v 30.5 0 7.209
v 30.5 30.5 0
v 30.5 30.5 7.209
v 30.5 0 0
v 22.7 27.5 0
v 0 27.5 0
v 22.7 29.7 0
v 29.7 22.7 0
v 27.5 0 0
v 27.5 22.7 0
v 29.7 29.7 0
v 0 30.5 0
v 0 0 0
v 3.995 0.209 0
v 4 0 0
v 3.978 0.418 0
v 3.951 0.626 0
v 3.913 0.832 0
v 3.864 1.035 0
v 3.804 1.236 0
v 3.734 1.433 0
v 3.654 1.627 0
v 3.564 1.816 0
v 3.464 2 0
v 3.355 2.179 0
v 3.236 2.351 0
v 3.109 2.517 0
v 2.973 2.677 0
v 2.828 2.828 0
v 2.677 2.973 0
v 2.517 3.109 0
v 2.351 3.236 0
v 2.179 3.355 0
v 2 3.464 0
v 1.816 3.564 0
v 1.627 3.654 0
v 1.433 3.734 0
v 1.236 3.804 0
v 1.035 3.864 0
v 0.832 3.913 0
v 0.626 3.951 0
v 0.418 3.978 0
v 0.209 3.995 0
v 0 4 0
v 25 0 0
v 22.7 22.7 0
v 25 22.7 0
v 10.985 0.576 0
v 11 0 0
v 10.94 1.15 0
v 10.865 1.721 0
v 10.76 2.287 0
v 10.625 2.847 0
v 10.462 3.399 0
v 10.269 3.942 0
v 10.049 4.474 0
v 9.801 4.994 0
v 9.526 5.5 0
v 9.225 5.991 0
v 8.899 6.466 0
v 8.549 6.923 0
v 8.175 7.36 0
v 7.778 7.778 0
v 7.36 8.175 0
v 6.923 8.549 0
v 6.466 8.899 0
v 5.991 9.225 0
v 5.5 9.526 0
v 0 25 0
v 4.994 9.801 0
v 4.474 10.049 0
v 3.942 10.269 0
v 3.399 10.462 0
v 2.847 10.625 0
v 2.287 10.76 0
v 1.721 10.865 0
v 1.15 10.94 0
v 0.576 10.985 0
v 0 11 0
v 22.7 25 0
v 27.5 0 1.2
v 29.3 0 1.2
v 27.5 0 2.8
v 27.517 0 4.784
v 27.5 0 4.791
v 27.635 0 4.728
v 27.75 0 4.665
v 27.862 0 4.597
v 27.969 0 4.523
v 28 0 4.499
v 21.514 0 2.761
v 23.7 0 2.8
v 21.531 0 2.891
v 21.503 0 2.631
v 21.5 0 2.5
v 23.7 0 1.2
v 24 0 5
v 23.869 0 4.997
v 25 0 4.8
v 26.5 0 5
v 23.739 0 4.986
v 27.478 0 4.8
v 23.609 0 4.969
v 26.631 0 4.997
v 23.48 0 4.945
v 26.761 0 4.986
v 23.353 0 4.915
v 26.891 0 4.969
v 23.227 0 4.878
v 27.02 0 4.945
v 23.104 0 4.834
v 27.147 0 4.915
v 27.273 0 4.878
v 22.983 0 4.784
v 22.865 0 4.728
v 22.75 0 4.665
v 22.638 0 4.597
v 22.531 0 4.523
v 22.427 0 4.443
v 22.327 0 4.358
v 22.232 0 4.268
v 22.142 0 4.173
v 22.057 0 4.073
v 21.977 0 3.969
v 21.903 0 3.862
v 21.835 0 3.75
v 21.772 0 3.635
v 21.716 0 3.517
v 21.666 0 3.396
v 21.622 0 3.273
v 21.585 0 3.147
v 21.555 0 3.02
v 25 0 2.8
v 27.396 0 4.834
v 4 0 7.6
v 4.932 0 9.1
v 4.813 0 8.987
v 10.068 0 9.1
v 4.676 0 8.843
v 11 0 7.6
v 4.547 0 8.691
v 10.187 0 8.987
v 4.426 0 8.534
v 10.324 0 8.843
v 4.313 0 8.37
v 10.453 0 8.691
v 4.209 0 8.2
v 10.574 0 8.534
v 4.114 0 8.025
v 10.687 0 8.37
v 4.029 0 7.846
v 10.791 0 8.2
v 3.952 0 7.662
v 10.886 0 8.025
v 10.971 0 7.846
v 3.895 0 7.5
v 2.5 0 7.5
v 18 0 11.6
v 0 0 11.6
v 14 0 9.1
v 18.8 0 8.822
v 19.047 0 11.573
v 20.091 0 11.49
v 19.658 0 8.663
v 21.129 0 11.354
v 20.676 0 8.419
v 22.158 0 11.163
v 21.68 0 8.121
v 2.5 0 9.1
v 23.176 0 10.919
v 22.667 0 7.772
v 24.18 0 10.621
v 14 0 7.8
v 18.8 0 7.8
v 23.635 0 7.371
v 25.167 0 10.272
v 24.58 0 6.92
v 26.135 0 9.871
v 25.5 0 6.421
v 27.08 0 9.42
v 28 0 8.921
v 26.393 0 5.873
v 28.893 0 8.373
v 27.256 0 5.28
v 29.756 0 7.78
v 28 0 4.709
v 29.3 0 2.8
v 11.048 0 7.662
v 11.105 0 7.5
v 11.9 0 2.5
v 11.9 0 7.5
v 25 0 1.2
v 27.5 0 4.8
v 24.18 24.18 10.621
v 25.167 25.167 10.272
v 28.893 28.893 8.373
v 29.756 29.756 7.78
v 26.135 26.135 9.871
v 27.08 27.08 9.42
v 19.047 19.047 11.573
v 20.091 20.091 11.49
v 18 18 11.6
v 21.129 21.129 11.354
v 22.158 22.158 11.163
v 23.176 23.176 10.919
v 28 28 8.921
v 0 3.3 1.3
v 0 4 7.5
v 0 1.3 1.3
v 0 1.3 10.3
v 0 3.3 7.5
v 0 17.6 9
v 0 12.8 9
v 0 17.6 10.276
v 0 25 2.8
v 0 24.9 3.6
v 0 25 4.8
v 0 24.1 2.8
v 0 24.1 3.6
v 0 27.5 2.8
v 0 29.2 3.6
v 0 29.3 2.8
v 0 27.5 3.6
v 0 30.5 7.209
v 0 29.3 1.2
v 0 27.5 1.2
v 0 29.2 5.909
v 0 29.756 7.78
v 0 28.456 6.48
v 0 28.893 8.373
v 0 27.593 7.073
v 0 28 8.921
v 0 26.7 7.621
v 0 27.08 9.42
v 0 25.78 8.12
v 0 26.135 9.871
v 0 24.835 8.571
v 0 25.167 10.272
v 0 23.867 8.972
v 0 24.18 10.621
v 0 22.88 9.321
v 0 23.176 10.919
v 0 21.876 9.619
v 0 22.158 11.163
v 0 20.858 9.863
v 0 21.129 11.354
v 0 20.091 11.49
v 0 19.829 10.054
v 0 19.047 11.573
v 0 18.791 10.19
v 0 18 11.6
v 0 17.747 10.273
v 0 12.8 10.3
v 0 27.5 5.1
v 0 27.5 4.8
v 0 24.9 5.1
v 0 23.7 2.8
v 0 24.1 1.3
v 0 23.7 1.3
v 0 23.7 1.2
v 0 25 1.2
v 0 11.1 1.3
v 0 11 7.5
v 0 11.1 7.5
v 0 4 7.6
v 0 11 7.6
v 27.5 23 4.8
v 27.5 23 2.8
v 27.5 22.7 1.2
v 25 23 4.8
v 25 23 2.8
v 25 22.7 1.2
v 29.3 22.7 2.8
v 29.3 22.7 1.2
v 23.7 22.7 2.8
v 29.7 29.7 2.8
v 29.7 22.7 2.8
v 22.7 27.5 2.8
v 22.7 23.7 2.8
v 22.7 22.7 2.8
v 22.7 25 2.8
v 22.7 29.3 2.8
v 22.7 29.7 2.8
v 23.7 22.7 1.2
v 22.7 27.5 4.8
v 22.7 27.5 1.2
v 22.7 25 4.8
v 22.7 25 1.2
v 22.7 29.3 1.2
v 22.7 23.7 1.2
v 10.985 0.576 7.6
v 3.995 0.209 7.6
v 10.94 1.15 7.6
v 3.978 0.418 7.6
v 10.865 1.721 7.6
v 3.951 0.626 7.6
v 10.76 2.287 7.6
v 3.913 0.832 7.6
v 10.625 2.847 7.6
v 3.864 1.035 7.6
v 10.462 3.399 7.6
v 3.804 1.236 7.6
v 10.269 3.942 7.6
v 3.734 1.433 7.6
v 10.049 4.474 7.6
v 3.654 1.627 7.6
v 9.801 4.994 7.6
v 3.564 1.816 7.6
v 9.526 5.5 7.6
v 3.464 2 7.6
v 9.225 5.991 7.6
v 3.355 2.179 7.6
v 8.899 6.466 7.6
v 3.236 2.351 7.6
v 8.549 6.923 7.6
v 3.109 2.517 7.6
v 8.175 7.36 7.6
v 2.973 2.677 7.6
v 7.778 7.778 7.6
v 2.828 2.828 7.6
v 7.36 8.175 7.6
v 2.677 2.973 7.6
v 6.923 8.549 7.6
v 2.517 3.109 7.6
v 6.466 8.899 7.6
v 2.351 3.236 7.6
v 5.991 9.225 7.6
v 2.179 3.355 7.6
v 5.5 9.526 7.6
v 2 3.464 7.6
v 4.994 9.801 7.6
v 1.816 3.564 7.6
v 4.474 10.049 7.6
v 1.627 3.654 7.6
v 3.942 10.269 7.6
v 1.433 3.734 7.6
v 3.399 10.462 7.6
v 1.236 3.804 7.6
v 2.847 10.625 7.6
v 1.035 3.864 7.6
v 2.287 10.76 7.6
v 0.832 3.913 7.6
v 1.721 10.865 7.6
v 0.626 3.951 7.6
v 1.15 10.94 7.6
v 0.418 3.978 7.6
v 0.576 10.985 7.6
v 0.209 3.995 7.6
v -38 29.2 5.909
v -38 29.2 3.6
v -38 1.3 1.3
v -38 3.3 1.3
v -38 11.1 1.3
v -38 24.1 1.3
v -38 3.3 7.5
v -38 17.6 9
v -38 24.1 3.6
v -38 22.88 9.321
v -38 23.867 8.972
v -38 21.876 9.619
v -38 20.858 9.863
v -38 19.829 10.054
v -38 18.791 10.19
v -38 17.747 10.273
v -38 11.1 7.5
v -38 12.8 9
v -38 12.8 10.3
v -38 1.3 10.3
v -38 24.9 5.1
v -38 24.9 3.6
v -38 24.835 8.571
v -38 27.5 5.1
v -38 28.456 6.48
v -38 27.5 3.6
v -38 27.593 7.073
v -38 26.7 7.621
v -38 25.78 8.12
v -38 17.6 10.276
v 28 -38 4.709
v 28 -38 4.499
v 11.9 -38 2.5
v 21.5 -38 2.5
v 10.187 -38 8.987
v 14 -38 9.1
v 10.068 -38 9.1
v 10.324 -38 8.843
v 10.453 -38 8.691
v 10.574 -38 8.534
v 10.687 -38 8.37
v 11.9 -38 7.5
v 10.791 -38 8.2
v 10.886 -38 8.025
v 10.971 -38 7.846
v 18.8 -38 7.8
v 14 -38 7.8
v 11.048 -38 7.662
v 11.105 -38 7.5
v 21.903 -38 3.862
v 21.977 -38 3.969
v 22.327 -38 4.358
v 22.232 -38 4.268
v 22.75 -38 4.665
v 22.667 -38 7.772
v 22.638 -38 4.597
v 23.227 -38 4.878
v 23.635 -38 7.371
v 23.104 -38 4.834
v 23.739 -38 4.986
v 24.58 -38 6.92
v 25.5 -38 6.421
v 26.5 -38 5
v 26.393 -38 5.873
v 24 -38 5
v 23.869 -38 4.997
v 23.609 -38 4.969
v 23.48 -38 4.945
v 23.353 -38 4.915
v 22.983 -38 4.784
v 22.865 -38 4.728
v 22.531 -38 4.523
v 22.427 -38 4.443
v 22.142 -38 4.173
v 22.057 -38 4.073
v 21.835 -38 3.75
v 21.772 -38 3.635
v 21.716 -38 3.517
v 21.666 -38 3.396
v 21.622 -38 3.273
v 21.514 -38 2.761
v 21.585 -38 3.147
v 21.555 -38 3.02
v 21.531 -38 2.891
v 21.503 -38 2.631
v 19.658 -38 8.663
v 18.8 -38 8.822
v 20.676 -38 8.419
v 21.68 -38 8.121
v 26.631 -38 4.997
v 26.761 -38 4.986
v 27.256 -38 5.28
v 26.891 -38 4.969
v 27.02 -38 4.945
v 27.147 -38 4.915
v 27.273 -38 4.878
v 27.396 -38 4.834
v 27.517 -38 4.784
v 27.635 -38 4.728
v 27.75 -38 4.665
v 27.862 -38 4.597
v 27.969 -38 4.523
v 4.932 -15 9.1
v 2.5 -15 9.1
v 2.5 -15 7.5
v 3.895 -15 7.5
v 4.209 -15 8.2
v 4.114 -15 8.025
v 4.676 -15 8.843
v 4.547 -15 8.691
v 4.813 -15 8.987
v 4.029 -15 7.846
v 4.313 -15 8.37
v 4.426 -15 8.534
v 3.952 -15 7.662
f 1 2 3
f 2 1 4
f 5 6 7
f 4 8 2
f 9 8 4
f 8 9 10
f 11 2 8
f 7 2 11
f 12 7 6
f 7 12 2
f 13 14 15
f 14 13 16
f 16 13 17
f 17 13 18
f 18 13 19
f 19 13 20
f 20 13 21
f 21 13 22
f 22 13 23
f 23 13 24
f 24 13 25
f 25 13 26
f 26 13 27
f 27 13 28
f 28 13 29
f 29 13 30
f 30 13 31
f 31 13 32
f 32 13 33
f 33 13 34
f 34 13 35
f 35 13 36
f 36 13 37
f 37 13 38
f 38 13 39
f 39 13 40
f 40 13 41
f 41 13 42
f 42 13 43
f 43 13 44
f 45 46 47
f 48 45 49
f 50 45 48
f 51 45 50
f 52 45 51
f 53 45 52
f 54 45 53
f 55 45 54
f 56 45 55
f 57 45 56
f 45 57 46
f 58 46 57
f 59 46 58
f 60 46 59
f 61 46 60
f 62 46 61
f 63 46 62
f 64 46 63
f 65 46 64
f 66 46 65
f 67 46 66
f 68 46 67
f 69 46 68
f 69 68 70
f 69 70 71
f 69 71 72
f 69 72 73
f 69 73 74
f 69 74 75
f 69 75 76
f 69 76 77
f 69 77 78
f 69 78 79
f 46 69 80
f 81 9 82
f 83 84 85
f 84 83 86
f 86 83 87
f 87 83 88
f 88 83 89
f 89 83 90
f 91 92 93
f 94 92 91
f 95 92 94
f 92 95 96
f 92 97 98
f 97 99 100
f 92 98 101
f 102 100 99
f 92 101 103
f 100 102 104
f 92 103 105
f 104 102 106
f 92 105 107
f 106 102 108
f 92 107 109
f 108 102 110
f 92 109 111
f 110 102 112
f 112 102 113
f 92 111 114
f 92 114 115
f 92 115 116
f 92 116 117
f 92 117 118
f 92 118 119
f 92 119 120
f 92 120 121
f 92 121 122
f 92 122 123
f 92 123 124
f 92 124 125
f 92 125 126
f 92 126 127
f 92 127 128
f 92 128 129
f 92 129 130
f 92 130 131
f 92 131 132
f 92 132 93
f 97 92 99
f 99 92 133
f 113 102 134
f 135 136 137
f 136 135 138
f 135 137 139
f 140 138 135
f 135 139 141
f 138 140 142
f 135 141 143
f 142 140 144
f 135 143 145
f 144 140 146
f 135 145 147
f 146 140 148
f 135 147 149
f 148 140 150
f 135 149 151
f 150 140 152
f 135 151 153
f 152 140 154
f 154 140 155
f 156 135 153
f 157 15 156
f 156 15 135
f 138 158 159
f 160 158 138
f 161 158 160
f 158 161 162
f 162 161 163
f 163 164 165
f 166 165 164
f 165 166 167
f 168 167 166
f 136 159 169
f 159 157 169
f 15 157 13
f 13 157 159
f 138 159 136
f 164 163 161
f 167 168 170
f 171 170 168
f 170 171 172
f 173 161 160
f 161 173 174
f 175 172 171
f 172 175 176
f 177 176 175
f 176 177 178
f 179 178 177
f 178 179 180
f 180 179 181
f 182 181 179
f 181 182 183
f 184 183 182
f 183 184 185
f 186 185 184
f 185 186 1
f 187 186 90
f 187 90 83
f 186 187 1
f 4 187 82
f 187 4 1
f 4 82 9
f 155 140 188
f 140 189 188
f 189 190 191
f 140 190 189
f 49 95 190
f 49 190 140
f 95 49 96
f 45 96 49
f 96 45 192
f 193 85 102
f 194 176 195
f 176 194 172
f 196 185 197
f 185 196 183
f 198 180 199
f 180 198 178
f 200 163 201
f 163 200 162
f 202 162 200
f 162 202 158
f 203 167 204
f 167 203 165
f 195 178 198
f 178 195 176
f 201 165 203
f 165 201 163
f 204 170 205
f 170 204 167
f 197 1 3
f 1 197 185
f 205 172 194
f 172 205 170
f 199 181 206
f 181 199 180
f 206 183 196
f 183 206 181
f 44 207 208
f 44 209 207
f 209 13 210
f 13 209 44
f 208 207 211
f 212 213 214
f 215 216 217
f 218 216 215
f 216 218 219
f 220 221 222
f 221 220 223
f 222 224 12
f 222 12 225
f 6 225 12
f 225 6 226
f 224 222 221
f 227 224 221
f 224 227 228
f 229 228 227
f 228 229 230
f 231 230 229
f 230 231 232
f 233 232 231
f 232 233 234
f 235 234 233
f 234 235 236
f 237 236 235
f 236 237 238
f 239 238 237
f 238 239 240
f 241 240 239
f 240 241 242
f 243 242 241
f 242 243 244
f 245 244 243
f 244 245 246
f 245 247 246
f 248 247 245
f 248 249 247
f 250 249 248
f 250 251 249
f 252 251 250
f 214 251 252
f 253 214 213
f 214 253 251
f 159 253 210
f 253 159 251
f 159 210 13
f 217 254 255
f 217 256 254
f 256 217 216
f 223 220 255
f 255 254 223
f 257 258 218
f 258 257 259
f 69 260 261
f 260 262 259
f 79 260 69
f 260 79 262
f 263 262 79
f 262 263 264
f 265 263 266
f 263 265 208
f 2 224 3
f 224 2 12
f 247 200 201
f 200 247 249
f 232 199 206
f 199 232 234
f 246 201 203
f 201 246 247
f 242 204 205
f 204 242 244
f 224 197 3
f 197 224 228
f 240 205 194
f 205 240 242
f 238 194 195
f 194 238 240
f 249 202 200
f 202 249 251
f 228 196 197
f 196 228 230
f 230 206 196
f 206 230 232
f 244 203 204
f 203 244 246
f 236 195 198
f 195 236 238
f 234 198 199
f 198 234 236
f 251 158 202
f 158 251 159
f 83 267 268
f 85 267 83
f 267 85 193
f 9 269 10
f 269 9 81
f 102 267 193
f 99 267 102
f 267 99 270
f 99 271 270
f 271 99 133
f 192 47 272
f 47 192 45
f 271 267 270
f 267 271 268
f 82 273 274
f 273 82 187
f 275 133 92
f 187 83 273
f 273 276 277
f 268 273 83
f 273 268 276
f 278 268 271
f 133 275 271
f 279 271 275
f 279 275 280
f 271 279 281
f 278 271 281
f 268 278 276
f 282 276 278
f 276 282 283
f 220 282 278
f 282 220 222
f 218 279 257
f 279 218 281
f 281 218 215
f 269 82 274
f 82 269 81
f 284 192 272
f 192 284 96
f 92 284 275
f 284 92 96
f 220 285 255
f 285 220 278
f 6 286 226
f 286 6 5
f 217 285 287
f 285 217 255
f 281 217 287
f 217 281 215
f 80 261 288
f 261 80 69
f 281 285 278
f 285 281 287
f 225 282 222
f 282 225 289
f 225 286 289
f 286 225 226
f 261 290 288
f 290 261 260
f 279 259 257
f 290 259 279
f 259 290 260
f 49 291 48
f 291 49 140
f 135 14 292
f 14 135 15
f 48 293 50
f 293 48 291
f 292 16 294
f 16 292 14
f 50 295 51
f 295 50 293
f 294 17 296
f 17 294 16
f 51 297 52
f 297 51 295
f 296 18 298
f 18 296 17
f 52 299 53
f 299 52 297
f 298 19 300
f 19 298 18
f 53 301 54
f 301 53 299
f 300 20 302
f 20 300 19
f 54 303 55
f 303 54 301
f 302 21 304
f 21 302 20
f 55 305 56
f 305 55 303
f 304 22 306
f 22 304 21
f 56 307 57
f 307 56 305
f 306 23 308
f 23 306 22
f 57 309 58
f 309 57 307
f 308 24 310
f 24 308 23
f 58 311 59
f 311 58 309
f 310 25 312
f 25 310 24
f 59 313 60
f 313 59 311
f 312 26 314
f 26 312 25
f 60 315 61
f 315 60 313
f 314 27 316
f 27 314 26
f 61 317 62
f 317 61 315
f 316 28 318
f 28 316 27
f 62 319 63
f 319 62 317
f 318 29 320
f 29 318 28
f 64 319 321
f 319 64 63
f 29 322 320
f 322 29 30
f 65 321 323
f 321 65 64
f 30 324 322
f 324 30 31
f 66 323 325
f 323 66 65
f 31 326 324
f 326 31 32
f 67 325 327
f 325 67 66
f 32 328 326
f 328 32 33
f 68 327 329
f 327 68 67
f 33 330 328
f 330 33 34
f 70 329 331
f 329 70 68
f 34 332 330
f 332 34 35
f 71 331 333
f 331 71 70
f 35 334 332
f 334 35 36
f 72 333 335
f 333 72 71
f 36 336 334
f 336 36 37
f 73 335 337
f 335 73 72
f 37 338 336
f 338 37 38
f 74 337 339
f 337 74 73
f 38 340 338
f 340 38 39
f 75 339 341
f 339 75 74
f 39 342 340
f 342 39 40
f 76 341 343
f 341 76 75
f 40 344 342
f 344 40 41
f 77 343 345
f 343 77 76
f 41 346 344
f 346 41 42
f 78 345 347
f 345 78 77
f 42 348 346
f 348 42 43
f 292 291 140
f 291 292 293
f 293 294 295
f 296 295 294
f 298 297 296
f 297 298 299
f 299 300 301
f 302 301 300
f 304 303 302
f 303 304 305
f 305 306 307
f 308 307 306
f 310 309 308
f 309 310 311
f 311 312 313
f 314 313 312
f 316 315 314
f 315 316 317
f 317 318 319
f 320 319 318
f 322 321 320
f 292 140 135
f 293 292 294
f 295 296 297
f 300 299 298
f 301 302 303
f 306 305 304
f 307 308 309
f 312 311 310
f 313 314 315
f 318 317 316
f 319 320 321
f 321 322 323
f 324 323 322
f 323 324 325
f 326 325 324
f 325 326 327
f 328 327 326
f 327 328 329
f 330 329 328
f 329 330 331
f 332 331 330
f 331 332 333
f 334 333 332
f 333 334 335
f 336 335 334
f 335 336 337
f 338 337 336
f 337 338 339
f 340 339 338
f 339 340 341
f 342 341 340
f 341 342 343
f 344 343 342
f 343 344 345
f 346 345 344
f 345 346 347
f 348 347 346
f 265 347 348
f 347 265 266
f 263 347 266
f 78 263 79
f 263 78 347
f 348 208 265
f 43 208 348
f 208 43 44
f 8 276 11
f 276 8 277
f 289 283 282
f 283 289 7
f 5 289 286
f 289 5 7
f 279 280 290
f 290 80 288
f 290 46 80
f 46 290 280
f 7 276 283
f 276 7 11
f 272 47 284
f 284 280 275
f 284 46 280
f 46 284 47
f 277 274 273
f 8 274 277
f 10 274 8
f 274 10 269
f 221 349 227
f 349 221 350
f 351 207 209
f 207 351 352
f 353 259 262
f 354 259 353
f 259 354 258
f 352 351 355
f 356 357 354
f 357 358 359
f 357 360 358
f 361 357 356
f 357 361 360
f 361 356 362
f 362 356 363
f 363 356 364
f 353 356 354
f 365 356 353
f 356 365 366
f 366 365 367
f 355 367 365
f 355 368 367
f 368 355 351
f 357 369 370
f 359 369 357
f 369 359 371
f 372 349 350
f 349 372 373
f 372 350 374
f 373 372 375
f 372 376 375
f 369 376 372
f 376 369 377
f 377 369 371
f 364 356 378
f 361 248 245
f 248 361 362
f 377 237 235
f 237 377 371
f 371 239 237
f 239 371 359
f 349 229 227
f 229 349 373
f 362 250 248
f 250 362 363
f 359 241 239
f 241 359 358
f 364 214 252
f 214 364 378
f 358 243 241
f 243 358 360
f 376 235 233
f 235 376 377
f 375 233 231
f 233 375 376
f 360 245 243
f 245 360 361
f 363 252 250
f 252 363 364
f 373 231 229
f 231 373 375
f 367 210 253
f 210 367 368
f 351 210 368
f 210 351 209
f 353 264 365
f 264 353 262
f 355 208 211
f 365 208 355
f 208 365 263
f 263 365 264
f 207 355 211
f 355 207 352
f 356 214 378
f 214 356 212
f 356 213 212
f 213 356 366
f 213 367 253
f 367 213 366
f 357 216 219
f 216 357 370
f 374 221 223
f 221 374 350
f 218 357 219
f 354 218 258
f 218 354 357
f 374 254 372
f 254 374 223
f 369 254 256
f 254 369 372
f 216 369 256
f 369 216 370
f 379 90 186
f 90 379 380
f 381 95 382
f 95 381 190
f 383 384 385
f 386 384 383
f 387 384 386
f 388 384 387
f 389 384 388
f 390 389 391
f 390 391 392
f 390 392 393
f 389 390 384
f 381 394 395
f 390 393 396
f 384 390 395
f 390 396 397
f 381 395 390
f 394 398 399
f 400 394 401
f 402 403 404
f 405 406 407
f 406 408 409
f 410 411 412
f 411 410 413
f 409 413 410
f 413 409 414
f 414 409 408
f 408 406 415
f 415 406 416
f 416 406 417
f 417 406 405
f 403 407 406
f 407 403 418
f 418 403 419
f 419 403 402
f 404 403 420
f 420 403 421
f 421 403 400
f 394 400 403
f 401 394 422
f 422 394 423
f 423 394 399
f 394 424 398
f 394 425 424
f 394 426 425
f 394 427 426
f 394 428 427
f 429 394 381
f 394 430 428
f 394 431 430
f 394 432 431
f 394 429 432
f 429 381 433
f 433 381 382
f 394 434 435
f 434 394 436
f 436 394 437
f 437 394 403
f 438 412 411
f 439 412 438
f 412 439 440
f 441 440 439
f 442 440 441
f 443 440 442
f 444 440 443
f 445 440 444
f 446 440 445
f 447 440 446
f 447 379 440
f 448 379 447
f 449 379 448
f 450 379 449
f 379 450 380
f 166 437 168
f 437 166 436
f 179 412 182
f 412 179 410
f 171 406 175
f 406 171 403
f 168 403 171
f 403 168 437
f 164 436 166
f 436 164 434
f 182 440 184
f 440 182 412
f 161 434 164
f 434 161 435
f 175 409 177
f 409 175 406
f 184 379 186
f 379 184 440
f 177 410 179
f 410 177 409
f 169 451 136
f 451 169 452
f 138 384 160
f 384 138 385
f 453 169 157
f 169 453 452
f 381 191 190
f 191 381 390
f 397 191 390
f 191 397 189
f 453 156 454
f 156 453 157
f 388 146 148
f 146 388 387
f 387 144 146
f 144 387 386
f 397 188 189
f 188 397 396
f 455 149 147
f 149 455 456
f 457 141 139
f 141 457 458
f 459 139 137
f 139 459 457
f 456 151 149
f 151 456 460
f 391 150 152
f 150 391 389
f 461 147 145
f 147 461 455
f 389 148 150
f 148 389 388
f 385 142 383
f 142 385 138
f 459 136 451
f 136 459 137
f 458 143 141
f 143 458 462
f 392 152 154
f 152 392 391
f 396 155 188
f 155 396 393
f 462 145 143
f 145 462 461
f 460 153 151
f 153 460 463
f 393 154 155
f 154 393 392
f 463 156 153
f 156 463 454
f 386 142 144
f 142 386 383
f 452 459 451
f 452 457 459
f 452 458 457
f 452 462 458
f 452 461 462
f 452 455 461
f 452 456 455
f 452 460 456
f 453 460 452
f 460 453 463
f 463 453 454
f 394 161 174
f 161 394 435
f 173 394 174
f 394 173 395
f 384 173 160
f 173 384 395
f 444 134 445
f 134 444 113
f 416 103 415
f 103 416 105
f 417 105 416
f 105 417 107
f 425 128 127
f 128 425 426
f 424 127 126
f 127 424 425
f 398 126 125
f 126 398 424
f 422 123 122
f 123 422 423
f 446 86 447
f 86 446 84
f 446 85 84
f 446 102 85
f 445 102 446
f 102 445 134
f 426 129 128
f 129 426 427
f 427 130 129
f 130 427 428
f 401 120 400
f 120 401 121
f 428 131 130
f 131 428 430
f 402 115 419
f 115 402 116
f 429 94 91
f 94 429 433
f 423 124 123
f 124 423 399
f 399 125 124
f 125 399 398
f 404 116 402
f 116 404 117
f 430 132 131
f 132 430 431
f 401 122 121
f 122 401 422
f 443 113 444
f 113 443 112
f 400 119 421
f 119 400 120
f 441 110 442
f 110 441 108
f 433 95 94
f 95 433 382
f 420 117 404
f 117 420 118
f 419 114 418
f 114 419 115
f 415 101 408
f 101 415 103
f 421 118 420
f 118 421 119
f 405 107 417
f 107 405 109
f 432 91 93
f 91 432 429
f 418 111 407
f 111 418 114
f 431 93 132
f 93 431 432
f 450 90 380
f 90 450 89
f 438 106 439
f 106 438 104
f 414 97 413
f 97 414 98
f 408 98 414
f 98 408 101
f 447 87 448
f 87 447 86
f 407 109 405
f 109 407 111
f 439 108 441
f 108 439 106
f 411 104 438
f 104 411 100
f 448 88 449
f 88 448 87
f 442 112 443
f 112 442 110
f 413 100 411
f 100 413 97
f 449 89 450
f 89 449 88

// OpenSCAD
//
// mensi cast 18x18mm
cp1 = 30.5;
roh1 = 18;
vroh1 = 11.6;
oble = 40;
delkavnej = 38;
$fn=120;

module tesneni(delka) {
    // profil pro tesneni cast1 (sirka 2.5 vyska 4.8 offset_x 25 )
    translate([1.3,0,0]) cube([2.5,delka,4.8]);
    // profil pro tesneni cast2 (sirka 5.6 vyska 1.6 offset_x 23.7 offset_z 1.2)  
    translate([0,0,1.2]) cube([5.6,delka,1.6]);
}

module centralpart () {
 difference() {
  union() {  
  cube([roh1,roh1,vroh1]);
  intersection(){
       translate([roh1,0,0]) cube([cp1-roh1,cp1,vroh1]);
       translate([roh1,0,vroh1-oble/2]) rotate([270,0,0]) cylinder(d=oble,h=roh1);
      }
  intersection(){
       translate([0,roh1,0]) cube([cp1,cp1-roh1,vroh1]);
       translate([0,roh1,vroh1-oble/2]) rotate([180,270,0]) cylinder(d=oble,h=roh1);
      }
  intersection(){
       translate([roh1,roh1,0]) cube([cp1-roh1,cp1-roh1,vroh1]);
       translate([roh1,roh1,vroh1-oble/2]) rotate([180,270,0]) cylinder(d=oble,h=roh1);
       translate([roh1,roh1,vroh1-oble/2]) rotate([270,0,0]) cylinder(d=oble,h=roh1);
      }
  } // plna cast
  union() { 
    // zahnuty profil vnitrni d=4 vnejsi d=10 stred je roh ctverce
    rotate_extrude(angle = 90) translate([4,0]) square(size = [7, 7.6], center = [10,0,0]);
    // tesneni jednim smerem
    translate([23.7,0,0]) tesneni(cp1-7.5);  
    // tesneni druhym smerem
    rotate([0,0,90]) translate([23.7,-22.7,0]) tesneni(cp1-7.5);  
    // vkladaci otvor
    translate([22.7,22.7,0]) cube([7,7,2.8]);  
  } // vyrezy    
 } // difference
}  

module vnejsiprofil() {
  offset=1.3;  
  translate([offset,0,offset]) 
   difference() {
    union() { 
    cube([roh1-2*offset,delkavnej,vroh1-2*offset]);  
    intersection(){
      translate([roh1-2*offset,0,0]) cube([cp1-roh1,delkavnej,vroh1]);
      translate([roh1-2*offset,0,vroh1-oble/2-2*offset]) rotate([270,0,0]) cylinder(d=oble,h=delkavnej);
     }
    } // hlavni cast   
    union() {
      // velky vyrez
      translate([2.0,0,0]) cube([7.8,delkavnej,6.2]);  
      // drazka pro uchycovaci pasek  
      translate([11.5,0,vroh1-3*offset]) cube([4.8,delkavnej,1.3]);  
      // drazky v prostoru tesneni
      translate([22.8,0,0]) cube([7.0,delkavnej,2.3]);  
      translate([23.6,0,0]) cube([2.6,delkavnej,3.8]);  
    } // odebirane casti
  } // difference 
}

module vnitrniprofil() {
    offset=2.5;
    translate([offset,0,offset]) 
    difference() {
    union() { cube([roh1-2*offset,delkavnej,vroh1-2*offset]);  
              intersection(){
                 translate([roh1-2*offset,0,0]) cube([cp1-roh1,delkavnej,vroh1]);
                 translate([roh1-2*offset,0,vroh1-oble/2-2*offset]) rotate([270,0,0]) cylinder(d=oble,h=delkavnej);
                }
            }
    union() {
      // velky vyrez
      translate([-1.6,0,-1]) cube([11,delkavnej,6]);  
      translate([5,0,3.8]) rotate([270,0,0]) cylinder(d=7.6,h=delkavnej);  
      translate([0,-15,3]) cube([4,delkavnej,6]); 
      // drazka pro uchycovaci pasek  
      translate([11.5,0,vroh1-2*offset-1.3]) cube([4.8,delkavnej,1.3]);  
      // vybrani u spicky dva valce d=5 a mezi stredy vzdalenost 2.5 fce hull
      translate([cp1-9,0,0]) rotate([270,0,0]) hull() { 
         cylinder(d=5, h=delkavnej);
         translate([2.5,0,0]) cylinder(d=5, h=delkavnej);
        }  
    } // odebirane casti
  } // difference          
}

centralpart();
translate([0,-delkavnej,0]) vnitrniprofil();
translate([0,0,0]) rotate([0,0,90]) vnejsiprofil();
// tesneni(delkavnej);
//vnitrniprofil();
